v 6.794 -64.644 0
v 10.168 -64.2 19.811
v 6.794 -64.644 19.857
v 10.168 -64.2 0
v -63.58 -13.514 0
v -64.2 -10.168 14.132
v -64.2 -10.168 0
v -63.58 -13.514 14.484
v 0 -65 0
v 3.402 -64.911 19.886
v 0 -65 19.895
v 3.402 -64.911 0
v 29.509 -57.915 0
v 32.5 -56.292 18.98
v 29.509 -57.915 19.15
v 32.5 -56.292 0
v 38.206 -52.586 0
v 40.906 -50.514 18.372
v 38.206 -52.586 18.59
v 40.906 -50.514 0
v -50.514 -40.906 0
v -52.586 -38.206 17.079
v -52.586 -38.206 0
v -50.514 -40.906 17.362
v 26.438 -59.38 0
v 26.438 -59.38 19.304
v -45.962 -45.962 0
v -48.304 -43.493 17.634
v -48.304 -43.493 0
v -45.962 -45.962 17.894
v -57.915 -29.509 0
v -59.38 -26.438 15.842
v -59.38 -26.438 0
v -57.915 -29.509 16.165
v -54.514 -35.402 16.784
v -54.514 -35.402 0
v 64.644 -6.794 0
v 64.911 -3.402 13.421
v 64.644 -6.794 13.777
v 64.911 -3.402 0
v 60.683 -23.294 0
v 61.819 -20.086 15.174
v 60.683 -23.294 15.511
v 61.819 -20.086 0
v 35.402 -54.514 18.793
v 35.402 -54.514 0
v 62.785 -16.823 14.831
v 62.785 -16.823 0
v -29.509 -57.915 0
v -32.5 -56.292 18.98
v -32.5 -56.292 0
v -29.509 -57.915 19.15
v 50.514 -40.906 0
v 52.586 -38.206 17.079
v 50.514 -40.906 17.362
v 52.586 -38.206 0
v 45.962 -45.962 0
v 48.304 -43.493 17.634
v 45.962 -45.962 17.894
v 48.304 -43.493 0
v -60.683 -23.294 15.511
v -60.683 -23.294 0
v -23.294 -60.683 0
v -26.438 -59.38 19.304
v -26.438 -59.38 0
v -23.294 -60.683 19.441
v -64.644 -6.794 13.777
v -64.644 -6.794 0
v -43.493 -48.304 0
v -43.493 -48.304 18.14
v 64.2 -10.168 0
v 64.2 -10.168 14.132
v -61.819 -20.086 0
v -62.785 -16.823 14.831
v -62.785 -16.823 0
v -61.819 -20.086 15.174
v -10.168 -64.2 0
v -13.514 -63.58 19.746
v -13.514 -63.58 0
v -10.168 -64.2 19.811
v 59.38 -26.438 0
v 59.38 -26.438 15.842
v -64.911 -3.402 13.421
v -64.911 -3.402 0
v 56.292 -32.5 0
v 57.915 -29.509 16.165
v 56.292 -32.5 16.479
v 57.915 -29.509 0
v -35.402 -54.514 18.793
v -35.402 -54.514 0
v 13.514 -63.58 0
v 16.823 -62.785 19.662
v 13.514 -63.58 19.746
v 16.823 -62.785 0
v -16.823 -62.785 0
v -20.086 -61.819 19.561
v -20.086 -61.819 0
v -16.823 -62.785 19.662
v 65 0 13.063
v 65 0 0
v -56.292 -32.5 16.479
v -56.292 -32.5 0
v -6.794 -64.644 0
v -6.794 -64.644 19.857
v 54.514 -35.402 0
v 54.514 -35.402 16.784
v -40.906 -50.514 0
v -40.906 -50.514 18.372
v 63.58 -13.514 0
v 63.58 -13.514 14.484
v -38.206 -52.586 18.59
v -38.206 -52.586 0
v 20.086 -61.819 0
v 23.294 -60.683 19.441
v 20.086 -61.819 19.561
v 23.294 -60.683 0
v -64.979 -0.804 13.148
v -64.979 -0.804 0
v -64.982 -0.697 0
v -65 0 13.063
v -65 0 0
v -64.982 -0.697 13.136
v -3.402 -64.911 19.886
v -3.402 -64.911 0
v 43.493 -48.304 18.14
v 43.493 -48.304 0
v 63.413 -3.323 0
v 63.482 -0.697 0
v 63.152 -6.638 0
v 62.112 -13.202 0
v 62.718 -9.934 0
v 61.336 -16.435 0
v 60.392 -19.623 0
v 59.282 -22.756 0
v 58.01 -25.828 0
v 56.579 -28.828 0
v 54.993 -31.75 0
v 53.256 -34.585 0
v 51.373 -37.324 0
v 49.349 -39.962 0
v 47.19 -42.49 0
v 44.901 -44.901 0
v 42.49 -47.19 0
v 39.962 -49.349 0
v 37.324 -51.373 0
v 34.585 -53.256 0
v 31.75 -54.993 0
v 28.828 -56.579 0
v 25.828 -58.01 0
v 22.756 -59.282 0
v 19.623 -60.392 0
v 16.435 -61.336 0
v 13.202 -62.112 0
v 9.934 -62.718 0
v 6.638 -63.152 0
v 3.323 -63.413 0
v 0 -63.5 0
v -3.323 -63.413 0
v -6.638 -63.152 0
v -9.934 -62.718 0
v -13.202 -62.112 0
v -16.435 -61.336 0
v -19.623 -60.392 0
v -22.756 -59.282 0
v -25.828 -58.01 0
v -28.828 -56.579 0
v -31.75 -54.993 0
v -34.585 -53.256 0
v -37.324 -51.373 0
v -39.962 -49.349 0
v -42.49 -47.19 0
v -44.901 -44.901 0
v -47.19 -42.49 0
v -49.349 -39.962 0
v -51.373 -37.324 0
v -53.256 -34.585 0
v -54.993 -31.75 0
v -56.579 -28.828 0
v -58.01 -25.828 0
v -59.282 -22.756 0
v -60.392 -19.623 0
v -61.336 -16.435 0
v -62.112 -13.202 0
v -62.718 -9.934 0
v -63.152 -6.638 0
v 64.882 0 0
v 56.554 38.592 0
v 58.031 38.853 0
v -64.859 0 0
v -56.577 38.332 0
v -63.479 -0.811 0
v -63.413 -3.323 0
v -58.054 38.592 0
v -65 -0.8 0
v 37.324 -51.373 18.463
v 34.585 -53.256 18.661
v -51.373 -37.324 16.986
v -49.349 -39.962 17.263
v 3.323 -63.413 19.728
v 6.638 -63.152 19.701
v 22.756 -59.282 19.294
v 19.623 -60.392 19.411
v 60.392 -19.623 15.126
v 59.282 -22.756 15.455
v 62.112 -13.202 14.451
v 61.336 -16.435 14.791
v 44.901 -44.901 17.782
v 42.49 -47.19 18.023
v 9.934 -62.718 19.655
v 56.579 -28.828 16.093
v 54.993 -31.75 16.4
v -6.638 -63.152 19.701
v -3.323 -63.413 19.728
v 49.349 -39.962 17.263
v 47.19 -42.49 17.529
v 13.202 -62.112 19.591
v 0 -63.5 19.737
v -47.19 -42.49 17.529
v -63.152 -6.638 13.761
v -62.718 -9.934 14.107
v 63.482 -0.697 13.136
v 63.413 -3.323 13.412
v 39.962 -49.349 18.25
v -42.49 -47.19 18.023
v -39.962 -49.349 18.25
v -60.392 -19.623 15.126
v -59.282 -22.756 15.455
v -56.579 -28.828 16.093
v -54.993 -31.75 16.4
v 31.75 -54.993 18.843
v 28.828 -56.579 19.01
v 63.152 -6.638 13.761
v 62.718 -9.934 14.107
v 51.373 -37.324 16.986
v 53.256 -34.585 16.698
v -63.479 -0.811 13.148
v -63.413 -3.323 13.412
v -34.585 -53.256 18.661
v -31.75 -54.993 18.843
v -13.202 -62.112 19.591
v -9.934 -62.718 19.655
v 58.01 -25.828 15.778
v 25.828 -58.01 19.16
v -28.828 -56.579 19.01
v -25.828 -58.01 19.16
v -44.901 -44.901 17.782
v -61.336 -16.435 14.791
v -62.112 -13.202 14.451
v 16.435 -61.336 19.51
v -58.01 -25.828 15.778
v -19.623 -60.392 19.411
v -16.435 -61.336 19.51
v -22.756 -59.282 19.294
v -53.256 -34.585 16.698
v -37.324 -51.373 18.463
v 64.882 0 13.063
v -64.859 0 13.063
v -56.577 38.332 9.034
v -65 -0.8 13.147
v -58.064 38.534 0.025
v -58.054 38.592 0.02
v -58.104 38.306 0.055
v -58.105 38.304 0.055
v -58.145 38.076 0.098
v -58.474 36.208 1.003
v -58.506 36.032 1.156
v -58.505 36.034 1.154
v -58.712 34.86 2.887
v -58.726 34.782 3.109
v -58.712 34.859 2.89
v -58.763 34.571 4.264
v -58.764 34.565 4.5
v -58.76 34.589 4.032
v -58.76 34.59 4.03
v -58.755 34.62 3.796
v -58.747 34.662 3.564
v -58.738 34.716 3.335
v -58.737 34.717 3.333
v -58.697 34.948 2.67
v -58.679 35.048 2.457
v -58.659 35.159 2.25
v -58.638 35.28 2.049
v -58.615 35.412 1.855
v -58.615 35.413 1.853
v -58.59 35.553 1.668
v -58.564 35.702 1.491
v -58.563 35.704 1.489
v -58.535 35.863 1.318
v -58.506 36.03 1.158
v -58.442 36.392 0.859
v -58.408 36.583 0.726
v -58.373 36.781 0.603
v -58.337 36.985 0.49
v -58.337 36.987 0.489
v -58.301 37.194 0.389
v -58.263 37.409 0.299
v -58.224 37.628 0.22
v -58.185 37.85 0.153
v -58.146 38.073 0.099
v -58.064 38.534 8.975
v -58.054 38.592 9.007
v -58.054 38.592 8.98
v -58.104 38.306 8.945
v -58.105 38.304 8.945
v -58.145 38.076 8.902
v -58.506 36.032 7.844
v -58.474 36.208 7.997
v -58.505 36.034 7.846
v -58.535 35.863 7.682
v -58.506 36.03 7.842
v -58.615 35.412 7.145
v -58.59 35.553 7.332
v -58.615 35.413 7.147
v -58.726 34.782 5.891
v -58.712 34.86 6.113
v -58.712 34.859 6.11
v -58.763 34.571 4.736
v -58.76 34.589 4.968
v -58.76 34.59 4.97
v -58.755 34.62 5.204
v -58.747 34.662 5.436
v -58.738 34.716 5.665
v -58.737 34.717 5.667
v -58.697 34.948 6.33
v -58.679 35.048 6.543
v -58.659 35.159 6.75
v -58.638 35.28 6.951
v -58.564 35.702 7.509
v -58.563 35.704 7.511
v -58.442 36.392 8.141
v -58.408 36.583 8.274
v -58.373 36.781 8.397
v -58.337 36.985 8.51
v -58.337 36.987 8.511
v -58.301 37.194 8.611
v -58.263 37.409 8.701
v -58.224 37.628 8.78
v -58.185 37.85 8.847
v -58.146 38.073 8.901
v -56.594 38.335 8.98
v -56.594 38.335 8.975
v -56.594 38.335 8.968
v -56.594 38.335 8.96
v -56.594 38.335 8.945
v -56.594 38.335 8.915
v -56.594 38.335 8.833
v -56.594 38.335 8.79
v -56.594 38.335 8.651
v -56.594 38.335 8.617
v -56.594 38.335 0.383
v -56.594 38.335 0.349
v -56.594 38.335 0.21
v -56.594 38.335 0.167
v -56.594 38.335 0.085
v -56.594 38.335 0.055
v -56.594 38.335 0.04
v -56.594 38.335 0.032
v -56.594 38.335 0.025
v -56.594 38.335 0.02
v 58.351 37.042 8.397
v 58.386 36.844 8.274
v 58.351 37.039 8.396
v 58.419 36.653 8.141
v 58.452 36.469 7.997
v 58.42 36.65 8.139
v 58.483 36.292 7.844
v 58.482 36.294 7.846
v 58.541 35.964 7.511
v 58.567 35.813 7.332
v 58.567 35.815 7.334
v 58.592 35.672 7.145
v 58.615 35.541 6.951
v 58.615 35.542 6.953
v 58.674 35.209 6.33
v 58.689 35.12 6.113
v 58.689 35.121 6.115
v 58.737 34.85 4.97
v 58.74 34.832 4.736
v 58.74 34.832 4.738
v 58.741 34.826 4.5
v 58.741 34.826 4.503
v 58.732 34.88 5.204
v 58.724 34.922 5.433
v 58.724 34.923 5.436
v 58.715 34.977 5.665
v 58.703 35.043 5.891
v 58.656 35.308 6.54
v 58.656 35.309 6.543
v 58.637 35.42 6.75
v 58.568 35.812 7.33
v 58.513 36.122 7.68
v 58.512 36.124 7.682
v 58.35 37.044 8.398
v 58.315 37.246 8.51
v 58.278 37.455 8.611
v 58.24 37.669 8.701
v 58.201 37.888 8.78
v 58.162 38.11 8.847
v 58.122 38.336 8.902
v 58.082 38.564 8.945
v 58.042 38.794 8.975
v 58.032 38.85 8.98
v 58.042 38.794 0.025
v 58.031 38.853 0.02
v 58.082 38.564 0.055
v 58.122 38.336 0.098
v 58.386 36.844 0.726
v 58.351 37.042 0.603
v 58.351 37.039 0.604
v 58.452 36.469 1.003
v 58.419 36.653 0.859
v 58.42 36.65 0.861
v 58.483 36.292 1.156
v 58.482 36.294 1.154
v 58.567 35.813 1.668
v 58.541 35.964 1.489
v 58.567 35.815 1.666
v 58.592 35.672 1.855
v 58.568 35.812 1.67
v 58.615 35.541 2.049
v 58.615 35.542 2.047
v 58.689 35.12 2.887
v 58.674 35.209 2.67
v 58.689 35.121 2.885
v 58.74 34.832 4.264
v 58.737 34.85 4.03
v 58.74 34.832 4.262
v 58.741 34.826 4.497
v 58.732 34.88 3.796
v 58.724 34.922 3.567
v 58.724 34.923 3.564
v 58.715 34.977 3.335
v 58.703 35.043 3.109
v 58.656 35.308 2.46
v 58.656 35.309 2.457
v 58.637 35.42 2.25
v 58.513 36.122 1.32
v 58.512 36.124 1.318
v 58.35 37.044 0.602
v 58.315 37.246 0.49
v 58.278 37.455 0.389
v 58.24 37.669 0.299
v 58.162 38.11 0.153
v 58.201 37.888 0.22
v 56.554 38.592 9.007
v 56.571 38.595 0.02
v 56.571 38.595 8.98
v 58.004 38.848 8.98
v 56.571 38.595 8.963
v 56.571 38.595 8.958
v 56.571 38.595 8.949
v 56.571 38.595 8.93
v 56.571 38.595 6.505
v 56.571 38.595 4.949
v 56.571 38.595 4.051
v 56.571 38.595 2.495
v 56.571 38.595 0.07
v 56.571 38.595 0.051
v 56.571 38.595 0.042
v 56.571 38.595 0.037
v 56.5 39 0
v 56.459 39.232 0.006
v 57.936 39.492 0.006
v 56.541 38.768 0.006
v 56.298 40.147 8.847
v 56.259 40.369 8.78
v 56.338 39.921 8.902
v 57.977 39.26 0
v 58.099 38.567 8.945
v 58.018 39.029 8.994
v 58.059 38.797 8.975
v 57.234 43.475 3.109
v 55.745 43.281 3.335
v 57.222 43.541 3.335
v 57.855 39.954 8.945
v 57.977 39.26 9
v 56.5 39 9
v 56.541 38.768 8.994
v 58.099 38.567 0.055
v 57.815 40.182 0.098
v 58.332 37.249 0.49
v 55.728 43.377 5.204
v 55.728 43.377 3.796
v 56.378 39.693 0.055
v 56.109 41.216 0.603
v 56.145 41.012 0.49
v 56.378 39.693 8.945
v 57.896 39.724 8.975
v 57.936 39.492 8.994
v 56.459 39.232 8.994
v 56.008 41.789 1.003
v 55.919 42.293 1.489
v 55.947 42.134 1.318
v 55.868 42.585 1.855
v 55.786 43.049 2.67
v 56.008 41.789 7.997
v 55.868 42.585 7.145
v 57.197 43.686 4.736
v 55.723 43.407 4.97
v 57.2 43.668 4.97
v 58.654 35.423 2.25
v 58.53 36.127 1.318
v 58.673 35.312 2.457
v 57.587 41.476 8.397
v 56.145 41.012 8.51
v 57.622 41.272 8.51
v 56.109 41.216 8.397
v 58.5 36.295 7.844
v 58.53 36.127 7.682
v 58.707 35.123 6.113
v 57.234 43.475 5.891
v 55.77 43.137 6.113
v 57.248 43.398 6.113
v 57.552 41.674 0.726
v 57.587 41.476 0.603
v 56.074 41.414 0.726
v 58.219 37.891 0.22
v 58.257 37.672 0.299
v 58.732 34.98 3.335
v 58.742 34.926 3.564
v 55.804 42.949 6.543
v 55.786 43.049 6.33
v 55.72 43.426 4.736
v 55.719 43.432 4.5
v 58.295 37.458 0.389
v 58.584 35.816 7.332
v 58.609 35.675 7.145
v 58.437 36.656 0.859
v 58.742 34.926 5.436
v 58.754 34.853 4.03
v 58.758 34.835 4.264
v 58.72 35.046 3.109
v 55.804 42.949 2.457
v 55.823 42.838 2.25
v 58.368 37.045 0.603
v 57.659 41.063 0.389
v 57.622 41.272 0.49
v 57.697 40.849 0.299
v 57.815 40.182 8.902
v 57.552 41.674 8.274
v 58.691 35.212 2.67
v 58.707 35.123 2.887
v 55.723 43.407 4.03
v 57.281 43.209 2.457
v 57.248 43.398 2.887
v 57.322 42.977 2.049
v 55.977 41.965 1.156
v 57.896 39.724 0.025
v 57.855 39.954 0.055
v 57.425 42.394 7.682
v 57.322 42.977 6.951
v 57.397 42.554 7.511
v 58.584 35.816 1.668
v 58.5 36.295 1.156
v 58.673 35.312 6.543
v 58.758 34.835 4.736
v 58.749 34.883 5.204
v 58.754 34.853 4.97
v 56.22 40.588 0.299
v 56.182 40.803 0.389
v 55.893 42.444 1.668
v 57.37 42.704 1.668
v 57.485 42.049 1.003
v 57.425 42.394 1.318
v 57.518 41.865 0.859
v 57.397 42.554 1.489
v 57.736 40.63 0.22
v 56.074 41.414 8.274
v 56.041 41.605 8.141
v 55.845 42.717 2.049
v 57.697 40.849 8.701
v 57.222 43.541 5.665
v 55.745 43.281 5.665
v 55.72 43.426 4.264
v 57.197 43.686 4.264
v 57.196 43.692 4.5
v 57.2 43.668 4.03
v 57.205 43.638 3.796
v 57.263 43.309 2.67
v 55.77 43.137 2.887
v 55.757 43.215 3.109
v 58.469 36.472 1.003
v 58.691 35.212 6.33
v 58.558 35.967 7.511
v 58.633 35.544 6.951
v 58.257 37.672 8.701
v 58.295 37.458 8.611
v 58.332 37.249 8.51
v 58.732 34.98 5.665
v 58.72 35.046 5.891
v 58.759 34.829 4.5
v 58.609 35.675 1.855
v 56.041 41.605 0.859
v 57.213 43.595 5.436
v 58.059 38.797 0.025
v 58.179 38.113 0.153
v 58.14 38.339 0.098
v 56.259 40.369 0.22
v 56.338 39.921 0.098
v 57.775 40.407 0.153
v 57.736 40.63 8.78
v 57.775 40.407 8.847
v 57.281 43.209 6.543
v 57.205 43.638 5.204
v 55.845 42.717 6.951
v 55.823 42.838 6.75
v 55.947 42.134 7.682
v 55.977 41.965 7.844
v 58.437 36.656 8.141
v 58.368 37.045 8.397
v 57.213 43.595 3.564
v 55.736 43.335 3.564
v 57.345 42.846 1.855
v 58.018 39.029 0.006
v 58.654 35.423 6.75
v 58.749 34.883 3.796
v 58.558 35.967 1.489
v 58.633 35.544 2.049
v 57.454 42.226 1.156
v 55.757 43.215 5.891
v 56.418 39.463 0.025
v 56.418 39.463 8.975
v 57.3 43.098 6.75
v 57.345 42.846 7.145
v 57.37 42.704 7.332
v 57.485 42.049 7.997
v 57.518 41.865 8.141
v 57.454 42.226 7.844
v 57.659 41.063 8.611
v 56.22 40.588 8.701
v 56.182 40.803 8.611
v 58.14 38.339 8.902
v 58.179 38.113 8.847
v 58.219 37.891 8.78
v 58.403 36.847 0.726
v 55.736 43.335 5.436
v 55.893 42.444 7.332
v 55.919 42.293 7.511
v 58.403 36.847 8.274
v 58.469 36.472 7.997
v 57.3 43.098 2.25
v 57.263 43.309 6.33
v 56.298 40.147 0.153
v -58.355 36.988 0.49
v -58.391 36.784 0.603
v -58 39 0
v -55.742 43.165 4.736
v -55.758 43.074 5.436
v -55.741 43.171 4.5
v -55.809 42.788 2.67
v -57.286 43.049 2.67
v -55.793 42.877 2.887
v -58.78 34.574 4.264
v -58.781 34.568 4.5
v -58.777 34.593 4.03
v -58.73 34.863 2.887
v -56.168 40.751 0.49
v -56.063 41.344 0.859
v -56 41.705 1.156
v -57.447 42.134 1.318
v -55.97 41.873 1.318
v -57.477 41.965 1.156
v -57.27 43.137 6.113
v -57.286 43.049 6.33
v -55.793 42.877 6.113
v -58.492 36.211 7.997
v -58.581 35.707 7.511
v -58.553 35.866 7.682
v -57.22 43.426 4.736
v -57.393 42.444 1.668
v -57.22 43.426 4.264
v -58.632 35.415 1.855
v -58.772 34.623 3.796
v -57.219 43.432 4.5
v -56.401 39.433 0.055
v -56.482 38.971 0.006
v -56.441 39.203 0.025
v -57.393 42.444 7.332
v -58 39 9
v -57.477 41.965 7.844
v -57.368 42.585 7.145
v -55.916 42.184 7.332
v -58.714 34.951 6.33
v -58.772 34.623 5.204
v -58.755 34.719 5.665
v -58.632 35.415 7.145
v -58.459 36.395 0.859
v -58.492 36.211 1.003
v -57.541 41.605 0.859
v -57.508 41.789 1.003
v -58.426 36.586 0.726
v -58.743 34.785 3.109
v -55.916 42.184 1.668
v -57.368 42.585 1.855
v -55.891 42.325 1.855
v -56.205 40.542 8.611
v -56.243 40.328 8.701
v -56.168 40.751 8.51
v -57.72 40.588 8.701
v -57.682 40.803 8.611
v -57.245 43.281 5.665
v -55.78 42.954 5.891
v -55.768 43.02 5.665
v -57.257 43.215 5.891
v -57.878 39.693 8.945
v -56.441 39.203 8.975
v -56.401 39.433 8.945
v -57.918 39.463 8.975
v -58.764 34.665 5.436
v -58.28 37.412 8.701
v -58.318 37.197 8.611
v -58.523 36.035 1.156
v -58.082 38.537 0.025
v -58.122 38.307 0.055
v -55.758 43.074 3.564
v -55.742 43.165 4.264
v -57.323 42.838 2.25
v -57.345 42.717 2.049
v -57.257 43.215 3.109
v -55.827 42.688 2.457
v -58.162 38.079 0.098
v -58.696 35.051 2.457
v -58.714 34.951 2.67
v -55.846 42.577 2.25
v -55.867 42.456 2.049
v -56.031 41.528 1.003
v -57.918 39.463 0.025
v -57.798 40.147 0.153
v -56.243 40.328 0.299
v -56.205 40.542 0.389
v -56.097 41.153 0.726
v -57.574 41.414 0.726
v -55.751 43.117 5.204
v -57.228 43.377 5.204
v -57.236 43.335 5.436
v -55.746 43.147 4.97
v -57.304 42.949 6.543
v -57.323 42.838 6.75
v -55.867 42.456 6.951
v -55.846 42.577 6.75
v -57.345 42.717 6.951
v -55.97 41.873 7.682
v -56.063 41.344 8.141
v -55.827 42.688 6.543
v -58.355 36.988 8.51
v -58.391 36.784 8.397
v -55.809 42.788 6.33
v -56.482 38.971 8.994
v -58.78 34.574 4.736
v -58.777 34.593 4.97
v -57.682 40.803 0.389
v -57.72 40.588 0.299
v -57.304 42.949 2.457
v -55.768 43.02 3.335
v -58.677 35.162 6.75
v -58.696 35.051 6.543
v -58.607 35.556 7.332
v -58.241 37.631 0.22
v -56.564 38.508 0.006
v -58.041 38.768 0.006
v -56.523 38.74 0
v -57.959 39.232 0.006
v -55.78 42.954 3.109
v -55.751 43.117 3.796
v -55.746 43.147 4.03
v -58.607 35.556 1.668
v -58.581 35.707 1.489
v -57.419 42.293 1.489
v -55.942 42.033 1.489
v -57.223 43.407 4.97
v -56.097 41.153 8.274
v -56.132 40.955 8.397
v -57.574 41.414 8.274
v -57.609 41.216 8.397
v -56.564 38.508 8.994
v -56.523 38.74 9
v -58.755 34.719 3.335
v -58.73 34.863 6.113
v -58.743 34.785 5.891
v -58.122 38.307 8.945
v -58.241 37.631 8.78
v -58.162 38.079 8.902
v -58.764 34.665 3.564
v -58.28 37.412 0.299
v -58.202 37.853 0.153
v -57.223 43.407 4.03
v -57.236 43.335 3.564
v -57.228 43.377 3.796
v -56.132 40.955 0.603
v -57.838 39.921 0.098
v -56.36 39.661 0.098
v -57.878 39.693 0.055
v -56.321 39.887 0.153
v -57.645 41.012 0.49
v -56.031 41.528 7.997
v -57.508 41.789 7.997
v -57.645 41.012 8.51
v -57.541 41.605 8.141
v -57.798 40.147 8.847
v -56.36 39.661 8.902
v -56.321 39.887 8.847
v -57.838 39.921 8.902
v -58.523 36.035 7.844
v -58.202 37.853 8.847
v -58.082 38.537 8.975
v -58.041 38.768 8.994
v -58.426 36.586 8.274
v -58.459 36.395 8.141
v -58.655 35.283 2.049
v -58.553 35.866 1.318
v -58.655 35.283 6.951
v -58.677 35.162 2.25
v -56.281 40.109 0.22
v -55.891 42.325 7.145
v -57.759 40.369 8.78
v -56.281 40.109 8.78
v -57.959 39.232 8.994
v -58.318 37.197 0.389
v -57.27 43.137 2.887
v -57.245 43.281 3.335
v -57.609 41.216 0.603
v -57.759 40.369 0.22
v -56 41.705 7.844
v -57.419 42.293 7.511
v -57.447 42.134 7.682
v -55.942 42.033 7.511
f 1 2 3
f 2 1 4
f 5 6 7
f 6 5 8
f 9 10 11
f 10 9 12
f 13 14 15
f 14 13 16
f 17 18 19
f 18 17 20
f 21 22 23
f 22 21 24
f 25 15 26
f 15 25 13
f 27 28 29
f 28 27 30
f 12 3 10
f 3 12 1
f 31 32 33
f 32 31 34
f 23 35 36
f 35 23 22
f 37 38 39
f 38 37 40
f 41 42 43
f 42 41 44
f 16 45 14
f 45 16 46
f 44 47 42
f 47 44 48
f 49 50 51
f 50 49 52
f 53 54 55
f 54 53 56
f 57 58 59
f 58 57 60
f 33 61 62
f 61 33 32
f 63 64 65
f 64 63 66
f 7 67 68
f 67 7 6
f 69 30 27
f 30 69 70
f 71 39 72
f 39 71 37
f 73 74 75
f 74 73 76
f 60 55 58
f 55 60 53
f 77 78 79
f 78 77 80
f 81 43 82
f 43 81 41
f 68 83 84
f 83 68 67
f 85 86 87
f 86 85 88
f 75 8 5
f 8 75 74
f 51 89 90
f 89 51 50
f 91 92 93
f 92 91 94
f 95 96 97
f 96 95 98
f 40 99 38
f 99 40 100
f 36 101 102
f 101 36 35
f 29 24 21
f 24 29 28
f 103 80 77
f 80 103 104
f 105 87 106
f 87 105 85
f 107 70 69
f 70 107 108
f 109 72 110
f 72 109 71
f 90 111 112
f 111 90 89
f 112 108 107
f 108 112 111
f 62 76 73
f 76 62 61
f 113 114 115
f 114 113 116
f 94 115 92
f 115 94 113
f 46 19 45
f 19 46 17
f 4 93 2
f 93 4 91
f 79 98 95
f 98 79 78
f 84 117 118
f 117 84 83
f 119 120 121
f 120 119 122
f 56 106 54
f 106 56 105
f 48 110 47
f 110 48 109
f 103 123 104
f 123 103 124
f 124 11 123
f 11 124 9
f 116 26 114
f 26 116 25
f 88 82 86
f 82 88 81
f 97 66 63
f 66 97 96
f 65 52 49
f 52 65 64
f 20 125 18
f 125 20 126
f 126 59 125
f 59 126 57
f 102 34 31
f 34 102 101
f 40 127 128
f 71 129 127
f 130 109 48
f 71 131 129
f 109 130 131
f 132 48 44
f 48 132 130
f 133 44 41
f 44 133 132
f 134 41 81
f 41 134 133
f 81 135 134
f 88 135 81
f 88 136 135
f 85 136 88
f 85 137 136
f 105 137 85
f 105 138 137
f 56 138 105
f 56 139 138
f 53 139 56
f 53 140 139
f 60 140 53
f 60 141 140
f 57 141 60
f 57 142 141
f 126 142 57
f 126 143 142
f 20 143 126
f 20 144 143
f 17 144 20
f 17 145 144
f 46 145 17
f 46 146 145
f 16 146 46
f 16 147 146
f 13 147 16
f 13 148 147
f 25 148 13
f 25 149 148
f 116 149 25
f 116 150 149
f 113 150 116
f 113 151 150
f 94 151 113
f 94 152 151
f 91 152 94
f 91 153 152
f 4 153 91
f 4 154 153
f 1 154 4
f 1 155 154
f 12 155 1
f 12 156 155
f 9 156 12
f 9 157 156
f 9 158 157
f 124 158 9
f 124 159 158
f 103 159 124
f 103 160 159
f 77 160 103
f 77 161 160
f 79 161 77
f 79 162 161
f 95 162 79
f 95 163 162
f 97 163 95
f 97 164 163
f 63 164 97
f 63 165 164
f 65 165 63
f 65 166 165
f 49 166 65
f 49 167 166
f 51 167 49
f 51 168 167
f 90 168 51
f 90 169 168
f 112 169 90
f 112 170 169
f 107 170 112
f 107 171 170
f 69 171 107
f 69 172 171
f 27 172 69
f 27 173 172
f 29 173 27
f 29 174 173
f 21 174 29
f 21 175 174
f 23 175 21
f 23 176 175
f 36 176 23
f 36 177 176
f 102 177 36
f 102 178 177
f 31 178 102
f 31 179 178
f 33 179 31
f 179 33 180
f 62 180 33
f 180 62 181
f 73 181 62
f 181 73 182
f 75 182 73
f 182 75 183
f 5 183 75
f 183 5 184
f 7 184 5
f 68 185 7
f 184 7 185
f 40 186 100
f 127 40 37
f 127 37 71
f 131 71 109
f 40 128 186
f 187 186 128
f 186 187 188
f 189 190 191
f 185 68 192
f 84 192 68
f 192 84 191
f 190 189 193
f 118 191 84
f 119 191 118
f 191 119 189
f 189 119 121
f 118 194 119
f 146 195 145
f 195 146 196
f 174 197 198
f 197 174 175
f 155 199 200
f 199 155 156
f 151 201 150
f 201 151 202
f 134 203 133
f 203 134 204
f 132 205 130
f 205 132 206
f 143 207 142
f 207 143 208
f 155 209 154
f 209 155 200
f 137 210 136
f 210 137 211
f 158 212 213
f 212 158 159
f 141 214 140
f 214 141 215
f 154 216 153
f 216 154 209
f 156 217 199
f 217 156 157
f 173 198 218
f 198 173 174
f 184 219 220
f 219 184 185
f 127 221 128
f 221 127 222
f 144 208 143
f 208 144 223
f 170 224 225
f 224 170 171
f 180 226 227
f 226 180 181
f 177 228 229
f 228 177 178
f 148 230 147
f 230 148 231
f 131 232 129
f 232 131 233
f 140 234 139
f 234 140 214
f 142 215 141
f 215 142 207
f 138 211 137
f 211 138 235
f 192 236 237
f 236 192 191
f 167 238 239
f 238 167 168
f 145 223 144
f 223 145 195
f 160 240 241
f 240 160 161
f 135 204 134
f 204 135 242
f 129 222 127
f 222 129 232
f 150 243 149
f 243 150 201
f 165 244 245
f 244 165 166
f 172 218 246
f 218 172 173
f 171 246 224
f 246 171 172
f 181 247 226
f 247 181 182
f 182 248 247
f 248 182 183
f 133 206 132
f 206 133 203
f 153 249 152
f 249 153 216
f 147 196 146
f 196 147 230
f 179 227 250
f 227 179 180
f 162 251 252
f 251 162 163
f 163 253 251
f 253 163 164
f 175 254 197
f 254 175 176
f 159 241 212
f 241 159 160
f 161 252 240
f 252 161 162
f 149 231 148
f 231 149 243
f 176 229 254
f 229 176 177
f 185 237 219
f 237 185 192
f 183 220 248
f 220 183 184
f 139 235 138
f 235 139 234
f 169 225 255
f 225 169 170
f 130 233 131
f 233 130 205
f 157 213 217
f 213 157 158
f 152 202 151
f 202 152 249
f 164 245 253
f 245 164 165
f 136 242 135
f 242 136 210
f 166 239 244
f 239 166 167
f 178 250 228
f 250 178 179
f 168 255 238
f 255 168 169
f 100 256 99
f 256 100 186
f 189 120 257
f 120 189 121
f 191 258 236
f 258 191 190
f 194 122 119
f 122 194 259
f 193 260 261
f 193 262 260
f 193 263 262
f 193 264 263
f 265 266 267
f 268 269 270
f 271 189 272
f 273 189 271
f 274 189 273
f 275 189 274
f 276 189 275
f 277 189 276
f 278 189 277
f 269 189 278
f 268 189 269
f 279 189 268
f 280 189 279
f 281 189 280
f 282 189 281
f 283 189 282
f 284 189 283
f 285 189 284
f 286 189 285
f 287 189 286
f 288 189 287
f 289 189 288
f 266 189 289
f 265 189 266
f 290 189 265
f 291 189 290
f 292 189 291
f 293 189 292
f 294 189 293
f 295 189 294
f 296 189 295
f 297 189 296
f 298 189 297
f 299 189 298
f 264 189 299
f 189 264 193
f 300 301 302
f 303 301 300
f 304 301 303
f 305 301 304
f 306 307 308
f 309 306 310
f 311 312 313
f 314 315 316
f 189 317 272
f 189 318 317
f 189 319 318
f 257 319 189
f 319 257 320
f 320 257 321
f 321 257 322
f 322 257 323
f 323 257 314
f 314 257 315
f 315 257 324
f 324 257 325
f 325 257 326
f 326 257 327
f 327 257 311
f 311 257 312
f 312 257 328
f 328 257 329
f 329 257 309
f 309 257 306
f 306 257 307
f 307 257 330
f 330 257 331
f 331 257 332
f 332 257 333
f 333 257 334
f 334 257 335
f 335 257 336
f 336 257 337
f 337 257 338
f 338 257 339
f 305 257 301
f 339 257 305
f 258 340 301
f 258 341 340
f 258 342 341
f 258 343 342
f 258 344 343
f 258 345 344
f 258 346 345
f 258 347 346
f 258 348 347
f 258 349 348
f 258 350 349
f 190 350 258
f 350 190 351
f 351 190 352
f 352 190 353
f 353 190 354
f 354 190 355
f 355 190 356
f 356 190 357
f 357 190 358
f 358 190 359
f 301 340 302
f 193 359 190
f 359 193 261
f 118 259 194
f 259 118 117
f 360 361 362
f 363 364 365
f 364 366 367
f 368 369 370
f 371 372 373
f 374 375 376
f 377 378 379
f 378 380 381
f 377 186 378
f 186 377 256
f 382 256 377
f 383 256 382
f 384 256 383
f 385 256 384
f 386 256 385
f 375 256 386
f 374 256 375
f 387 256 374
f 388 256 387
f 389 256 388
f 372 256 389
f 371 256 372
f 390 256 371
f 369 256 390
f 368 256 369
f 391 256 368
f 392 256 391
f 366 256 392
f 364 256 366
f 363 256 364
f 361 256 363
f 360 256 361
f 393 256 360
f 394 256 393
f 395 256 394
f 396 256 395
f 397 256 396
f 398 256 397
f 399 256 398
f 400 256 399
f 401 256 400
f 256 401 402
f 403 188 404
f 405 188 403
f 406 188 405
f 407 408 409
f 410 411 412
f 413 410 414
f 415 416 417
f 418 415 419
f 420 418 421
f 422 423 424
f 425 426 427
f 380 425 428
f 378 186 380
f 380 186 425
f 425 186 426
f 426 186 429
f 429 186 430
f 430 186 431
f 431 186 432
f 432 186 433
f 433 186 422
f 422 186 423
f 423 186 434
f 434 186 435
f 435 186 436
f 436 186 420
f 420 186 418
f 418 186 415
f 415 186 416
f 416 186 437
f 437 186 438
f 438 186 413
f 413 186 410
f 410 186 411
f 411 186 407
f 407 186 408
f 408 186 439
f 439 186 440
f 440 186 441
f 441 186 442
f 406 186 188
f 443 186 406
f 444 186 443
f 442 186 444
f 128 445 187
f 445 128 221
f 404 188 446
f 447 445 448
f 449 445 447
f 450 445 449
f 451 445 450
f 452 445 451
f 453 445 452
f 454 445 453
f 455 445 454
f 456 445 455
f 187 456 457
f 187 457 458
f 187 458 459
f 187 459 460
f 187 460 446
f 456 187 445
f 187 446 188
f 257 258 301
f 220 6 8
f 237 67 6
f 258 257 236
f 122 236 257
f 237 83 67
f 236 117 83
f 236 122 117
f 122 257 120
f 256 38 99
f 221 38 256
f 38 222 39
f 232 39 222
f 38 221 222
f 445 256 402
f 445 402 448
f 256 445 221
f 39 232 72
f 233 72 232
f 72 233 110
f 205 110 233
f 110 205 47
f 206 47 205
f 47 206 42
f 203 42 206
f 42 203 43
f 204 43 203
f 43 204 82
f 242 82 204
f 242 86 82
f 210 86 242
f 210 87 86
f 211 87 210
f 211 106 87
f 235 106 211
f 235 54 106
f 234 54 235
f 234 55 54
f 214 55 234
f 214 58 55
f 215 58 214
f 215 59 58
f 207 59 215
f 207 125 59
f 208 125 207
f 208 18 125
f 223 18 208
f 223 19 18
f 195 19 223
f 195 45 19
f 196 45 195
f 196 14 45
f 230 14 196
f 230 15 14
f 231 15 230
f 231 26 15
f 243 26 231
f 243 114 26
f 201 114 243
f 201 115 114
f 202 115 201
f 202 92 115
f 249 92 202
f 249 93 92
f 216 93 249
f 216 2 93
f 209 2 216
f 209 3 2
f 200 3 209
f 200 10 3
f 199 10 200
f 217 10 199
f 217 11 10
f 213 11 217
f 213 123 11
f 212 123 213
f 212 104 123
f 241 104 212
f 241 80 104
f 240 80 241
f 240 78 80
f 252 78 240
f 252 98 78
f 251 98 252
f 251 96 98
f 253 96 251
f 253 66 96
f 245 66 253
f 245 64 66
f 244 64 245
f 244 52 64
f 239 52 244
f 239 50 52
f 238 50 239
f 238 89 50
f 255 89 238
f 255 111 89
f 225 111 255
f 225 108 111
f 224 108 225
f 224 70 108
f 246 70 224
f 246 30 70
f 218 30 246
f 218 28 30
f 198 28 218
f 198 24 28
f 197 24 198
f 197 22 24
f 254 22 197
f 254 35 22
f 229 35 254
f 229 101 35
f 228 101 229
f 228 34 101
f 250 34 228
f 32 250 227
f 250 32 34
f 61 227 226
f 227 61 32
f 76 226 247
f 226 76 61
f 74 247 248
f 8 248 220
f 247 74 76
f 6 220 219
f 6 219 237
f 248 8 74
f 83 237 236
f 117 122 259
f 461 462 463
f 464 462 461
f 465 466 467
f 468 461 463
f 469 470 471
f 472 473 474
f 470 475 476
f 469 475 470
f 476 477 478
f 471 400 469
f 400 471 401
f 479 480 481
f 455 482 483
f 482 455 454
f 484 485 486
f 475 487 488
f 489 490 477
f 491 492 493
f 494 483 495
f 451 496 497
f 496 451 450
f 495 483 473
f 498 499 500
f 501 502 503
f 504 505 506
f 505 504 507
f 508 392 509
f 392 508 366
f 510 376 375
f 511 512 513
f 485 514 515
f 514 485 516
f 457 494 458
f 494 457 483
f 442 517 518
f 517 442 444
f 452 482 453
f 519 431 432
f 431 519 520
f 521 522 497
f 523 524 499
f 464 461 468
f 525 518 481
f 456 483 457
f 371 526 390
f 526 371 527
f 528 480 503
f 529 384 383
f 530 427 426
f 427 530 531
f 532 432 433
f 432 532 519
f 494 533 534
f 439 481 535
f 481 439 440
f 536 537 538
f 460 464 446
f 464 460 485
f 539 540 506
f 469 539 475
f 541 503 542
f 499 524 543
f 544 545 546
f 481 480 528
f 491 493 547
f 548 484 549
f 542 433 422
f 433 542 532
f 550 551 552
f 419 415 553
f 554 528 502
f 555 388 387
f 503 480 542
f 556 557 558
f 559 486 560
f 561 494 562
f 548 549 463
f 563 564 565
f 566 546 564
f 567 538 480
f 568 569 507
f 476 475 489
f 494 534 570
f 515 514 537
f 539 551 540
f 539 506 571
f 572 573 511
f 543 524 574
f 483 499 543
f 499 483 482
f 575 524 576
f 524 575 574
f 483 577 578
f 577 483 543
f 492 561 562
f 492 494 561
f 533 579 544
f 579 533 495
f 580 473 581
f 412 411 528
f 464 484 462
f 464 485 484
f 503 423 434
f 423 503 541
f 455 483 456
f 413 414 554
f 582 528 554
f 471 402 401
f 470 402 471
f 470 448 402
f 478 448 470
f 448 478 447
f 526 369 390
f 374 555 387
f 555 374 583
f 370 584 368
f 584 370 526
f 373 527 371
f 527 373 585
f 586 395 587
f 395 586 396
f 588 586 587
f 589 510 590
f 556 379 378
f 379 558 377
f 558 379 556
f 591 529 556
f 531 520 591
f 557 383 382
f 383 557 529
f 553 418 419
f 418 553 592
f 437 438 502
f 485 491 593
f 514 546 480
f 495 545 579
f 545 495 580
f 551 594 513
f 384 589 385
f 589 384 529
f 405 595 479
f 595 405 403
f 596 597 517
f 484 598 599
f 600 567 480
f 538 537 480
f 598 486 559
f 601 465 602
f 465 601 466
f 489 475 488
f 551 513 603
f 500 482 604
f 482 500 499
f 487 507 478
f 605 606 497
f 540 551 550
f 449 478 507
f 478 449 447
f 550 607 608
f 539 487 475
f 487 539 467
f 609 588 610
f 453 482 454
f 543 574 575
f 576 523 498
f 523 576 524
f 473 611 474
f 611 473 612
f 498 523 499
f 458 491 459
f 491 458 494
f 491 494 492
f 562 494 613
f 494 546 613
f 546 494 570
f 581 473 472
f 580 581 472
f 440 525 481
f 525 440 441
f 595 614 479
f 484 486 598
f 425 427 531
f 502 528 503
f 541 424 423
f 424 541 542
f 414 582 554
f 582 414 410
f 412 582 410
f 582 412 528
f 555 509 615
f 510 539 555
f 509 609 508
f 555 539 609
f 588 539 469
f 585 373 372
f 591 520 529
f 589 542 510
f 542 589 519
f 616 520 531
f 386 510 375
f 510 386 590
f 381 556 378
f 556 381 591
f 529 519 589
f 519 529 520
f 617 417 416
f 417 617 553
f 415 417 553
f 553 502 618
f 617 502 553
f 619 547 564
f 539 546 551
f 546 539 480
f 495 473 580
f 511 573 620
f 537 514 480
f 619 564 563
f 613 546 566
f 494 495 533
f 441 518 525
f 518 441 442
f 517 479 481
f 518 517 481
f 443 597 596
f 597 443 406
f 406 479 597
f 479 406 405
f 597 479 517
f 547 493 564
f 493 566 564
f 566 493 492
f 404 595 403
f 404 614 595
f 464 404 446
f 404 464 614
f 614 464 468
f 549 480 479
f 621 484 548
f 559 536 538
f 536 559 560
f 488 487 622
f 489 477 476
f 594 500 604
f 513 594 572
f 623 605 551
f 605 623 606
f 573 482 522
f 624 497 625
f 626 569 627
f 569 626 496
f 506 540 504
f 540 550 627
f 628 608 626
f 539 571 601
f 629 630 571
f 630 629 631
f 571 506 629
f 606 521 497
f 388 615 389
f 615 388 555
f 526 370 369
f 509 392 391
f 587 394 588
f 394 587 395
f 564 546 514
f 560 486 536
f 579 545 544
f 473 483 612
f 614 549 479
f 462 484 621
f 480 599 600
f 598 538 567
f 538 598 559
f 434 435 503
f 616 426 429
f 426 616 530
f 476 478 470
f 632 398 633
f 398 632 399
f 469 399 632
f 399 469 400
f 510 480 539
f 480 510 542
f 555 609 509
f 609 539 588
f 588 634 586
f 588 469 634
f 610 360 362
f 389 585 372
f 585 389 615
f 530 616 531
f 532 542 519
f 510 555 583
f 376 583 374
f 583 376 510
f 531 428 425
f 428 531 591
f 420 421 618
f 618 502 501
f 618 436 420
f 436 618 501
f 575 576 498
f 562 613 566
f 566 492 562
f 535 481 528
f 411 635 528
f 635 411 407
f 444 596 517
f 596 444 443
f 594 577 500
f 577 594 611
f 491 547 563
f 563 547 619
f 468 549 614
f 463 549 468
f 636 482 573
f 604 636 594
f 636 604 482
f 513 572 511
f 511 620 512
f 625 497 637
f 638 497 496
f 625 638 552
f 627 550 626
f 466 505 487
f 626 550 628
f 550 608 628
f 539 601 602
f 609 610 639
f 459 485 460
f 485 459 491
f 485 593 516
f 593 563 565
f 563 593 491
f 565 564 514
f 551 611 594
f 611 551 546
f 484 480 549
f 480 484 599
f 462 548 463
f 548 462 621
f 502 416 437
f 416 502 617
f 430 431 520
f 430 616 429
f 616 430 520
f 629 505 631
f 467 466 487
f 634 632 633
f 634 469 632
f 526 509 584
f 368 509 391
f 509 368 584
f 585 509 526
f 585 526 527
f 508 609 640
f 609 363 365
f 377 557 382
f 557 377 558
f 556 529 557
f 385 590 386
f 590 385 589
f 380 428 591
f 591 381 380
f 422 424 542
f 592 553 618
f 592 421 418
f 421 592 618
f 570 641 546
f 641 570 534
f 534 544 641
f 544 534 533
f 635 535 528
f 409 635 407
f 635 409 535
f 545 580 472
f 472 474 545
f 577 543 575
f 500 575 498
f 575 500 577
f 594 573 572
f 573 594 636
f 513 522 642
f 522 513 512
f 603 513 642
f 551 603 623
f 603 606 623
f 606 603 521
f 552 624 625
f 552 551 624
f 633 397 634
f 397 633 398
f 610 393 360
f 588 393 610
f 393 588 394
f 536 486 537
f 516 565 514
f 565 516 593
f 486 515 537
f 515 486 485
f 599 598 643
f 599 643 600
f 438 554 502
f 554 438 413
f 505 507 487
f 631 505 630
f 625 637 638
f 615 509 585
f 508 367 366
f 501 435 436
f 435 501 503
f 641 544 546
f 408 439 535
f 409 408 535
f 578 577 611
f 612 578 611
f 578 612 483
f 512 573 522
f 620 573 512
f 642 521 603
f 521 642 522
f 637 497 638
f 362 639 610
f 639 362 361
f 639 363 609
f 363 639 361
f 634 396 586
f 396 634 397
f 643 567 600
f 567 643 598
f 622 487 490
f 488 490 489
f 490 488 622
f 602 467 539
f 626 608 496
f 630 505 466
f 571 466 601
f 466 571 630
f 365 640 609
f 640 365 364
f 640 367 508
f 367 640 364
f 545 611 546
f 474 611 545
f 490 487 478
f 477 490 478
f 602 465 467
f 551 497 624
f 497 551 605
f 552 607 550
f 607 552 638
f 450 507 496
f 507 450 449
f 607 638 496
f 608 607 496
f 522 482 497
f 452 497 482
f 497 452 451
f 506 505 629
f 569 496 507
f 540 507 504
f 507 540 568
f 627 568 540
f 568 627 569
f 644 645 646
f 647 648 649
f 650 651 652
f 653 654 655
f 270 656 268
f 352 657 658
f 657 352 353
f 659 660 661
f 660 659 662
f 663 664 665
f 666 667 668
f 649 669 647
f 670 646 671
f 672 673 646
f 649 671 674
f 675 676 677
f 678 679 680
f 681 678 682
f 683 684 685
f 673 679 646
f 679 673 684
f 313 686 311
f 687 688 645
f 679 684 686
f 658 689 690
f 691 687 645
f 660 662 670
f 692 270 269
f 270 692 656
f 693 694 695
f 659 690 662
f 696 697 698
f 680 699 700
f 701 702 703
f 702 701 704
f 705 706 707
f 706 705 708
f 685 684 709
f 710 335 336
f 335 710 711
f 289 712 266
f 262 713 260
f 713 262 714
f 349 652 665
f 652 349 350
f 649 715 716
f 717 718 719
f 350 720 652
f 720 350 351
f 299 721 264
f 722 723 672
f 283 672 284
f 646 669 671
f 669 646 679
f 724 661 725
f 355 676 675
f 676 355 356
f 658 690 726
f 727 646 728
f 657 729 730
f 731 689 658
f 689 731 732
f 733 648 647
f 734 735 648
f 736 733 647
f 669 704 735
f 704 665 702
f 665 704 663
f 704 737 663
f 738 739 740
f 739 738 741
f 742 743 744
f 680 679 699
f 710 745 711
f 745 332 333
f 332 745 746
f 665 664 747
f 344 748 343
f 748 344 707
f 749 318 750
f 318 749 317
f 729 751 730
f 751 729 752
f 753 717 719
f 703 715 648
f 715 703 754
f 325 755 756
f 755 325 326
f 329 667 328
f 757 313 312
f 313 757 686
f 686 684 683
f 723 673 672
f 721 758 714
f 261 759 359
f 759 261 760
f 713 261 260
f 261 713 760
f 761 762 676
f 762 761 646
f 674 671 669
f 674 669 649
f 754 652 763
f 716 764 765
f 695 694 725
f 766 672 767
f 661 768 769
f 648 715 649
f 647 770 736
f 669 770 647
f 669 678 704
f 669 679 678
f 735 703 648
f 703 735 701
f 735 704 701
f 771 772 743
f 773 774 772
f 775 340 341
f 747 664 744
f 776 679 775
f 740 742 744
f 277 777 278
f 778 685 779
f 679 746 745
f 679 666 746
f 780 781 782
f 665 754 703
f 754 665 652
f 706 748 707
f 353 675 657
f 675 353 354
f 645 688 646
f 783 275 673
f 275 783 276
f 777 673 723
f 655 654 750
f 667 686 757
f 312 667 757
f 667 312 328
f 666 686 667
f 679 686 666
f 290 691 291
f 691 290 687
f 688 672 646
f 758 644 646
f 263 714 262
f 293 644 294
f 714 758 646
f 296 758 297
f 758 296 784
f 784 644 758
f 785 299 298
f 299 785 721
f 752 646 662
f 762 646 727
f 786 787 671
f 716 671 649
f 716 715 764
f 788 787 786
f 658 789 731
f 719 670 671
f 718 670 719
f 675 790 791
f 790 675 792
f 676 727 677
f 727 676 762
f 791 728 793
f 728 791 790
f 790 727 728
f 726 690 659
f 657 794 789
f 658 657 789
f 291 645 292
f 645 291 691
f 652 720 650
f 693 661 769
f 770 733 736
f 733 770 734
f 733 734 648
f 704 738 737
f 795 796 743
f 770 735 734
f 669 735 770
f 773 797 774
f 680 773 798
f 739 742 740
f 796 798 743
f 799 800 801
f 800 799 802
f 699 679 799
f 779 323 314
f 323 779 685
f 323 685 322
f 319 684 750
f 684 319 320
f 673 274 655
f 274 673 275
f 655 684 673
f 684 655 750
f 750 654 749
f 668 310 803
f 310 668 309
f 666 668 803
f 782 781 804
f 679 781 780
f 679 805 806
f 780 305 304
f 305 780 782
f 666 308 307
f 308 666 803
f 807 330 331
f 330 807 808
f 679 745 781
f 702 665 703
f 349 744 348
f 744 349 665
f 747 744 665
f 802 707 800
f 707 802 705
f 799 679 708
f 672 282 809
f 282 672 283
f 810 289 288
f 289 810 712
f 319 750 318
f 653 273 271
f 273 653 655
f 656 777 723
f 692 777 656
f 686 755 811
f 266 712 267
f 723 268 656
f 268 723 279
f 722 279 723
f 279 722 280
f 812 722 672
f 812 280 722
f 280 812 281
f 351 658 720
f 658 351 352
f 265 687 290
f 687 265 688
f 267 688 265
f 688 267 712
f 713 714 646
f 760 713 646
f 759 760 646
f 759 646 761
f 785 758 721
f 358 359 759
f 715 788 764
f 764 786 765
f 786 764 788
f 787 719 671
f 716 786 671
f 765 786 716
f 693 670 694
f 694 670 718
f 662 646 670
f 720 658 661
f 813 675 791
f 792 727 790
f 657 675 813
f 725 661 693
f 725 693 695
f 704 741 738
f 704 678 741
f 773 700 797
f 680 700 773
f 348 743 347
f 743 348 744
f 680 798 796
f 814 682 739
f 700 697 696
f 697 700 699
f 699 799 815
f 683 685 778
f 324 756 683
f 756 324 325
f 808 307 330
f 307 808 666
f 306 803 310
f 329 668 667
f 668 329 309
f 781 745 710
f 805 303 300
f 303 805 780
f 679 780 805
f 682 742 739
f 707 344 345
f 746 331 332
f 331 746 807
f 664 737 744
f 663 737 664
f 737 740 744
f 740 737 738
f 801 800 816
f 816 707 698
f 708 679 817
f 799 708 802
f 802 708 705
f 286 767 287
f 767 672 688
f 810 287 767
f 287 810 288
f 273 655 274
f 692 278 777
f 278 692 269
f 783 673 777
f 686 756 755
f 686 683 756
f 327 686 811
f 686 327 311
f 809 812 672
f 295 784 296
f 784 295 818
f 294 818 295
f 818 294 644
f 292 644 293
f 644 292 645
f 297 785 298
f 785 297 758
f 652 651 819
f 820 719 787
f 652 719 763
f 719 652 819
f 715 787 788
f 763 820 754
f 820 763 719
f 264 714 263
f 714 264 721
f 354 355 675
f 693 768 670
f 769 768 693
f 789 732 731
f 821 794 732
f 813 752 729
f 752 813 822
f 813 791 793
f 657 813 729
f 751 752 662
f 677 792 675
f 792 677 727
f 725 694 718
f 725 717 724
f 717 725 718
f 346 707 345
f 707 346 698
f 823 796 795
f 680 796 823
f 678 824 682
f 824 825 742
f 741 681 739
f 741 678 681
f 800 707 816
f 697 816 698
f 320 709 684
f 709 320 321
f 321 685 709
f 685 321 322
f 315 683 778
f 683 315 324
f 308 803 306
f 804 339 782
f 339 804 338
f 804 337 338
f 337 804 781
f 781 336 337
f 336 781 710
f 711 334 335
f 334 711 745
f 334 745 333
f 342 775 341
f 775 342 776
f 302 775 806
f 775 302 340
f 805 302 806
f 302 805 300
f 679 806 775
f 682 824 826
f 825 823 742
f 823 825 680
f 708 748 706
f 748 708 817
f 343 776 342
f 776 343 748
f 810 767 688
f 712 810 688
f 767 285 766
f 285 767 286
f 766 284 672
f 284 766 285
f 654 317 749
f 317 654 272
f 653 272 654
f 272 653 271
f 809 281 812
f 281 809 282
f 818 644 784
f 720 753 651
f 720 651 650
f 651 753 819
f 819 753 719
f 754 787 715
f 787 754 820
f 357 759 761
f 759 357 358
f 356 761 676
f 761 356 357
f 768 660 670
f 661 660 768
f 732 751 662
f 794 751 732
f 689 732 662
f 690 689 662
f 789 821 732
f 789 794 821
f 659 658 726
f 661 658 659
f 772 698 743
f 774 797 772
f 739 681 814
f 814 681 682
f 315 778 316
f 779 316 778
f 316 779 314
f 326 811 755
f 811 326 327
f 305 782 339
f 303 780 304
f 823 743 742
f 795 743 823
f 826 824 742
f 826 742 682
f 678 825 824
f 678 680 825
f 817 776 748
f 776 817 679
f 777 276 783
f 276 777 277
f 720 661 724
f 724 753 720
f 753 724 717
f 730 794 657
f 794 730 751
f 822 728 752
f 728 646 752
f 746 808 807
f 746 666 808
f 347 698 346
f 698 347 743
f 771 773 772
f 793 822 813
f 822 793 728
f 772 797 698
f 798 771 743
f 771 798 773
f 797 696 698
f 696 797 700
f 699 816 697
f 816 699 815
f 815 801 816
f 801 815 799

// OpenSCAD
diameter = 130;
height = 20;
thickness = 1.5;
ear_length = 40;

end_diameter = 9;
end_rotate_offset_x = 8.5;
end_rotate_offset_y = 1;

$fn=120;

module ear() {
    cube([thickness, ear_length, height]);
}

module headband() {
    difference() {
        cylinder(d=diameter, height);
        translate([0, 0, -1]) cylinder(d=diameter - 2 * thickness, height + 2);
        translate([-(diameter + 2) / 2, 0, -1]) cube([diameter + 2, diameter + 2, height + 2]);
    }
    translate([-diameter/2, -0.8, 0]) rotate([0, 0, -10]) ear();
    translate([diameter/2 - thickness, -0.8, 0]) rotate([0, 0, 10]) ear();
}

difference() {
    headband();
    translate([-(diameter + 2) / 2, -(diameter + 2) / 2, height]) rotate([-6, 0, 0]) cube([diameter + 2, diameter + 2, height + 2]);
}

translate([diameter / 2 - end_rotate_offset_x, ear_length - end_rotate_offset_y, end_diameter / 2]) rotate([0, 90, 10]) cylinder(thickness, d=end_diameter);
translate([-diameter / 2 + end_rotate_offset_x - thickness, ear_length - end_rotate_offset_y, end_diameter / 2]) rotate([0, 90, -10]) cylinder(thickness, d=end_diameter);
